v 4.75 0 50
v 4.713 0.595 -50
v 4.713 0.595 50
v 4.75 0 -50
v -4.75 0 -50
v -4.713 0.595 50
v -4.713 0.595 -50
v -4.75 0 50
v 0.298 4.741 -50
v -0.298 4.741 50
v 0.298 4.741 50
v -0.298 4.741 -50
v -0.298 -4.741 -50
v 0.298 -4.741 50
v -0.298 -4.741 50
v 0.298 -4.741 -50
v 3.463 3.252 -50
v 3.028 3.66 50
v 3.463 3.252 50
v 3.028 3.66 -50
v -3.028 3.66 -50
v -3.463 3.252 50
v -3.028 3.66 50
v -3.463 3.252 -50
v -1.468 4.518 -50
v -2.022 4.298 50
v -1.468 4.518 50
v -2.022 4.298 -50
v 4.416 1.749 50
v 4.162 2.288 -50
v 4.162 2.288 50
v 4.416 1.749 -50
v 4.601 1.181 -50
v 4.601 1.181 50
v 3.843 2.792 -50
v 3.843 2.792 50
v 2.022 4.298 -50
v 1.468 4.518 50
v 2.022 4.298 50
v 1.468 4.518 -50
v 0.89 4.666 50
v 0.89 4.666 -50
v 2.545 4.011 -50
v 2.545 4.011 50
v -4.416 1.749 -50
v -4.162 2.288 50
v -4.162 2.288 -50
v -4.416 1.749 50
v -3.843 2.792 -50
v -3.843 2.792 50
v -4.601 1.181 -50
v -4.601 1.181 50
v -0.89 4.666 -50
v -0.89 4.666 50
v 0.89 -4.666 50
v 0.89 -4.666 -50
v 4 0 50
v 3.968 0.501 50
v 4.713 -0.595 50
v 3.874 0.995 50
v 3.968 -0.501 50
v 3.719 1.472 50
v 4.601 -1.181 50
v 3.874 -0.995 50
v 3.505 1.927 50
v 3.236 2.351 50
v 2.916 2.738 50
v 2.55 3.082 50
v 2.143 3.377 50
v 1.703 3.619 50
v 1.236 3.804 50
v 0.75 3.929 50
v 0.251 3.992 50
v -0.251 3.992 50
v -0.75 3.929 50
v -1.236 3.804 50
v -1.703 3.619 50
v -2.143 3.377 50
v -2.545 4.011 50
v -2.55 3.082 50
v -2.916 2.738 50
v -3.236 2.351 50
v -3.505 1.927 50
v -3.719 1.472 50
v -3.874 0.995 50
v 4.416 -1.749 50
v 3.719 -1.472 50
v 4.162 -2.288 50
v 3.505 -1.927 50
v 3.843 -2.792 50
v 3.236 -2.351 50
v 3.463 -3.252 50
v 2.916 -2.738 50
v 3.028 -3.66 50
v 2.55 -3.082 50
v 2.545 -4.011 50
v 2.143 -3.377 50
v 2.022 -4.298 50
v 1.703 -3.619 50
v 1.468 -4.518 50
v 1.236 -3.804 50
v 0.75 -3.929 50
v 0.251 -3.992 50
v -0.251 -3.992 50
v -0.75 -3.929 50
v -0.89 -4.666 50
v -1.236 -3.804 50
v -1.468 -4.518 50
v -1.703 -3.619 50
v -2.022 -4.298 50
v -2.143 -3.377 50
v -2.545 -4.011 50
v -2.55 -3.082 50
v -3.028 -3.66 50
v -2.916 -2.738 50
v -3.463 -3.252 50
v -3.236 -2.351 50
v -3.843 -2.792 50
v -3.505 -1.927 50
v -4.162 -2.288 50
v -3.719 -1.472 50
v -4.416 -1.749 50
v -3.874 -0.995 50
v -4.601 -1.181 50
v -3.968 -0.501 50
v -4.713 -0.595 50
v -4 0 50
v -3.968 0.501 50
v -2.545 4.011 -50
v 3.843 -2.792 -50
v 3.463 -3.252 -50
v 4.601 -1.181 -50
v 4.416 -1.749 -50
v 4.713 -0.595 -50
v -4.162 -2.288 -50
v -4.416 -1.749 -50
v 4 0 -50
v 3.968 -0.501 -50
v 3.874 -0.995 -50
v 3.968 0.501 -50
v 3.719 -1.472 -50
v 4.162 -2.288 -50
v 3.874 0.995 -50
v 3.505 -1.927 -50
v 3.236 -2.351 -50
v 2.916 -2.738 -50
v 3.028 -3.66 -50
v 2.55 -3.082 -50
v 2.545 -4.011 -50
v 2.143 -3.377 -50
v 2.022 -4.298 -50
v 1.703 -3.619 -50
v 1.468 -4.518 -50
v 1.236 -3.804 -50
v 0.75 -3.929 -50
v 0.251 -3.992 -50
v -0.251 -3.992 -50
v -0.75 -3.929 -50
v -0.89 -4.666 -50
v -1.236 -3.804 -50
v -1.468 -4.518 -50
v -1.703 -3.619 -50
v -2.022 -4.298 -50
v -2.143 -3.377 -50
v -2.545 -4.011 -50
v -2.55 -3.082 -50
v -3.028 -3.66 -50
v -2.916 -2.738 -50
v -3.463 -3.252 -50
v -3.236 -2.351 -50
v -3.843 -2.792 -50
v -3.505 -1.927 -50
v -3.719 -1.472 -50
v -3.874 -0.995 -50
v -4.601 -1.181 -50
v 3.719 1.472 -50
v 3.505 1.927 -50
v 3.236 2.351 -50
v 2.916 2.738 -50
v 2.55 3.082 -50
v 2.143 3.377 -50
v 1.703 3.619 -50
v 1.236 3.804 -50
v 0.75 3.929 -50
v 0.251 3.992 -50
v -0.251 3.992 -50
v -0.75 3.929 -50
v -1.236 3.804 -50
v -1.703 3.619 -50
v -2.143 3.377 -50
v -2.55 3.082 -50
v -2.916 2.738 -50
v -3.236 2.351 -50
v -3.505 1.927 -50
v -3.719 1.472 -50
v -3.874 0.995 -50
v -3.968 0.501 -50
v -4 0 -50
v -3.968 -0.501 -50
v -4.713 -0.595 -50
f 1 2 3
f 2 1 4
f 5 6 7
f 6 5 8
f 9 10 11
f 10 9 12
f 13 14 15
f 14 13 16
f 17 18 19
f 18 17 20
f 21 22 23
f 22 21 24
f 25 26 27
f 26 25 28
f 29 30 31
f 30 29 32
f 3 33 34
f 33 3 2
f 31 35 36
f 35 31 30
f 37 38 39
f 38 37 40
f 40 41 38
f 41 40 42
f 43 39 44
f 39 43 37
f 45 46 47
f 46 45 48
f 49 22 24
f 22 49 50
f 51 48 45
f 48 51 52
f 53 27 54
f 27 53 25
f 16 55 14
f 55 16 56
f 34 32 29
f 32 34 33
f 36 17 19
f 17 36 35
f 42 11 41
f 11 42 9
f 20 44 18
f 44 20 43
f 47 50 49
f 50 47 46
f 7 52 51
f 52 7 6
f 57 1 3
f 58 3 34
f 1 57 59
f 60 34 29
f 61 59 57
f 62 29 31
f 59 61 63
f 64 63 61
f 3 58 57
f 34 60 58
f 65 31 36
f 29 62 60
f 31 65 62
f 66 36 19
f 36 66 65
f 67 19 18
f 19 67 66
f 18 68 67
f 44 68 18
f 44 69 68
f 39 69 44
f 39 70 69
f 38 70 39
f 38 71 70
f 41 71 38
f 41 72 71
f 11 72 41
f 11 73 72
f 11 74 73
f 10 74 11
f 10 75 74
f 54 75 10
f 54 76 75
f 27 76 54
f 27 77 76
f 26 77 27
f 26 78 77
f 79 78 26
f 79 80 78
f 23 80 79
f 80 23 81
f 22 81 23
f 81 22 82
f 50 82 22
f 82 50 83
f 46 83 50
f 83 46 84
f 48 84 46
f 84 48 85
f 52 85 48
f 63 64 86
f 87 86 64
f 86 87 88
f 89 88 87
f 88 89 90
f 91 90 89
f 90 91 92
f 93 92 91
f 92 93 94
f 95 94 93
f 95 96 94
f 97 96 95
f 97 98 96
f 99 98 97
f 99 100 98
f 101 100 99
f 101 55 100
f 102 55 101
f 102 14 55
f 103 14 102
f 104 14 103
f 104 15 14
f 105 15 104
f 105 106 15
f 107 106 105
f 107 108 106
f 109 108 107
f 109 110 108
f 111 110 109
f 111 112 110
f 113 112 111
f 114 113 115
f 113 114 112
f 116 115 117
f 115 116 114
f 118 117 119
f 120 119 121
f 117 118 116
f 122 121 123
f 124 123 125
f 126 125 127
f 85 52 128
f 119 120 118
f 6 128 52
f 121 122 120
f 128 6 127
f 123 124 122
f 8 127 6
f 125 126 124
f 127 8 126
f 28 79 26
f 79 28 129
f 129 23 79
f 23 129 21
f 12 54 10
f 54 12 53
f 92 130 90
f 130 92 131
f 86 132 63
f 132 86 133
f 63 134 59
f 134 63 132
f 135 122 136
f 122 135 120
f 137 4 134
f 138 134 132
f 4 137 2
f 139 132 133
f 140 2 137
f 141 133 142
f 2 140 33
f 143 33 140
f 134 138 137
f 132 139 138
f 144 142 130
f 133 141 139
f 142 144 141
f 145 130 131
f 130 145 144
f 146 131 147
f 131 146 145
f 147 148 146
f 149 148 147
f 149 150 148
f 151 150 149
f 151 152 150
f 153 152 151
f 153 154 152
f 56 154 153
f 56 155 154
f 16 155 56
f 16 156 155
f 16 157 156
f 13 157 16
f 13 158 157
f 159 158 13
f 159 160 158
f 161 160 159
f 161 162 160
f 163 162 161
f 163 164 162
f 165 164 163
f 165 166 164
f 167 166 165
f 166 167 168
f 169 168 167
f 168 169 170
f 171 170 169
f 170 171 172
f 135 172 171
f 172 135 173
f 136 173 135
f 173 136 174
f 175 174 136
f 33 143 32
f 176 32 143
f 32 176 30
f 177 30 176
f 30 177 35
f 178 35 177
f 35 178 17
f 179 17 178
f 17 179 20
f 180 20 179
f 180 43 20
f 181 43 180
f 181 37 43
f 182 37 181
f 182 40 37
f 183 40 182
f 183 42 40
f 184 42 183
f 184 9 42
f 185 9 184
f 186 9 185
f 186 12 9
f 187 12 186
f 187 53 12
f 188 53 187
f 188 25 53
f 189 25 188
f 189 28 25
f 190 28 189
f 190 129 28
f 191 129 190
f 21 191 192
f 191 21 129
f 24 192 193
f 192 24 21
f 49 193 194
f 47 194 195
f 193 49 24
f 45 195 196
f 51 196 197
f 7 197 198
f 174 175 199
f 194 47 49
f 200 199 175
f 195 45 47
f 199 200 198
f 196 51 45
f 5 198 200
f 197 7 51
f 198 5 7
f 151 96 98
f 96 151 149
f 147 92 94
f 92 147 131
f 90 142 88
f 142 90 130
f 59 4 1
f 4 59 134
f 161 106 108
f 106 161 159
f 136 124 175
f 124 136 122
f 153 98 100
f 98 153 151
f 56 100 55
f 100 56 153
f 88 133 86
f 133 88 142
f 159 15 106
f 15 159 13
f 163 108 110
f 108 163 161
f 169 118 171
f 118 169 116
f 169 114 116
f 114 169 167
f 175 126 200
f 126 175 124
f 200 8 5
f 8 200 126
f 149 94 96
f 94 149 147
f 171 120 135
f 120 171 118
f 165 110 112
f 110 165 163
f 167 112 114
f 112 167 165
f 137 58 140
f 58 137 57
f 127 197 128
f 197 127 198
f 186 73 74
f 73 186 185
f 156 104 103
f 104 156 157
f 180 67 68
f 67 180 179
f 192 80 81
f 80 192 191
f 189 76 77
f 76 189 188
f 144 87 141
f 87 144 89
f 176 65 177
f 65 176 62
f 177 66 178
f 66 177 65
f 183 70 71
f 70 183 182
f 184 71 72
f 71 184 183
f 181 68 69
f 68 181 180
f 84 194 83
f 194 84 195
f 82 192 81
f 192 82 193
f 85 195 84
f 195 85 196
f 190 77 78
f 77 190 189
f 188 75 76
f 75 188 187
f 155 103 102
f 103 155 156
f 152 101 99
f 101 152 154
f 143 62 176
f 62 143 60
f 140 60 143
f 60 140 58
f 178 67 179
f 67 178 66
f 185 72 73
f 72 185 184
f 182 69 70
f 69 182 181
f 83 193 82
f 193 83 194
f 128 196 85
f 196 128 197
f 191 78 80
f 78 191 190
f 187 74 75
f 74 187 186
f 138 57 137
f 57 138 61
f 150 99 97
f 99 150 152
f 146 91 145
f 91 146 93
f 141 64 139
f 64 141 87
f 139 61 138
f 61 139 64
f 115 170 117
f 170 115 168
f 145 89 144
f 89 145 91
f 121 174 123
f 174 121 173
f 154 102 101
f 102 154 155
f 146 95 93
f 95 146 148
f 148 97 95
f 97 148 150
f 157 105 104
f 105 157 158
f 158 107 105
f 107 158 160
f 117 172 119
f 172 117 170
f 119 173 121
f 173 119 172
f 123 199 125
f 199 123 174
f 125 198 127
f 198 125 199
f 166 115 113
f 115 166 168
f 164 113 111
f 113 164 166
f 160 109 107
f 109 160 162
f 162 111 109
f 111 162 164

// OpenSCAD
$fn = 50;


difference() {
	union() {
		translate(v = [0, 0, -50.0000000000]) {
			cylinder(h = 100, r = 4.7500000000);
		}
	}
	union() {
		translate(v = [0, 0, -100.0000000000]) {
			cylinder(h = 200, r = 4.0000000000);
		}
	}
}
